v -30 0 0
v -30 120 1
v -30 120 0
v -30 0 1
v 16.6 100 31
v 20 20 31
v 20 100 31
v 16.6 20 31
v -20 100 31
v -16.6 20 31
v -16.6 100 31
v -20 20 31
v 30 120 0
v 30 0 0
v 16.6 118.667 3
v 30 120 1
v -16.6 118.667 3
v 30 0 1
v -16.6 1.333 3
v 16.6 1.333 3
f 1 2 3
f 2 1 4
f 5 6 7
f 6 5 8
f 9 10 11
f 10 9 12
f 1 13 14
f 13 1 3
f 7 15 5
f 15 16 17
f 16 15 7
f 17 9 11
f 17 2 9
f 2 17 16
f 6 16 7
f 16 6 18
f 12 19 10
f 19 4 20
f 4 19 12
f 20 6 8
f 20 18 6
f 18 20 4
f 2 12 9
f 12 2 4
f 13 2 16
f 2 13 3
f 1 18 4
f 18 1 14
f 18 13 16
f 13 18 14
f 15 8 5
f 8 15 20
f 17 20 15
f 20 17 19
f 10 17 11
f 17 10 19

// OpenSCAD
//cube([33,200,100]);
hdd=33+0.2;
difference() {
    translate([-30,0,0]) hull() {
        linear_extrude(1) square([60,120]);
        translate([10,20,30]) linear_extrude(1) square([40,80]);
    }
    translate([-hdd/2,-10,3]) cube([hdd,200,100]);
}
